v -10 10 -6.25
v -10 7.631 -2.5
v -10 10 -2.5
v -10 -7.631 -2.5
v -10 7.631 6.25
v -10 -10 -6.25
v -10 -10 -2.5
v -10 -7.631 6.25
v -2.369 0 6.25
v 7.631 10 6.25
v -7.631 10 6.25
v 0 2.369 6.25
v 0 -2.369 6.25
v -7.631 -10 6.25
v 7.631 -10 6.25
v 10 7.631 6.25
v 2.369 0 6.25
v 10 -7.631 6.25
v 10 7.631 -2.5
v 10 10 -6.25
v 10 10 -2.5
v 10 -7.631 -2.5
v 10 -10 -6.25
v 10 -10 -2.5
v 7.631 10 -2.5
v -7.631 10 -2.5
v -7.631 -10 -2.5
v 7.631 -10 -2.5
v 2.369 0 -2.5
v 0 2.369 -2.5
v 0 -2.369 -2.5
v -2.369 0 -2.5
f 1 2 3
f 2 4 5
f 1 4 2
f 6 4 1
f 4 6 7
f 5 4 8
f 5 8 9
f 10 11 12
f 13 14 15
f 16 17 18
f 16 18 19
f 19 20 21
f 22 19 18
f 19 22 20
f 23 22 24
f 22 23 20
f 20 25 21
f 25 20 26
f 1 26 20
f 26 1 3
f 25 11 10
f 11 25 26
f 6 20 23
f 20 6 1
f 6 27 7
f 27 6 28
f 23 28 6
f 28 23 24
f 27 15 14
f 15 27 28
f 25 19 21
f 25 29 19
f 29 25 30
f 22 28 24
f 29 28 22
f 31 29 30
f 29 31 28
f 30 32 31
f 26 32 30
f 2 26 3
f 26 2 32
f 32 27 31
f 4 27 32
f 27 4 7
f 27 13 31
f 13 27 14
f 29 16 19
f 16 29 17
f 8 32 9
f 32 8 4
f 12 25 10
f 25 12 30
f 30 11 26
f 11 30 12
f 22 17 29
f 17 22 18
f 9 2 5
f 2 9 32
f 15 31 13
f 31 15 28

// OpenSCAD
difference(){
    cube([20, 20, 12.5], center=true);
    
    rotate([0,0,45])translate([0,0,2.5])cube([29,3.35,10], center=true);
    rotate([0,0,135])translate([0,0,2.5])cube([29,3.35,10], center=true);
}
